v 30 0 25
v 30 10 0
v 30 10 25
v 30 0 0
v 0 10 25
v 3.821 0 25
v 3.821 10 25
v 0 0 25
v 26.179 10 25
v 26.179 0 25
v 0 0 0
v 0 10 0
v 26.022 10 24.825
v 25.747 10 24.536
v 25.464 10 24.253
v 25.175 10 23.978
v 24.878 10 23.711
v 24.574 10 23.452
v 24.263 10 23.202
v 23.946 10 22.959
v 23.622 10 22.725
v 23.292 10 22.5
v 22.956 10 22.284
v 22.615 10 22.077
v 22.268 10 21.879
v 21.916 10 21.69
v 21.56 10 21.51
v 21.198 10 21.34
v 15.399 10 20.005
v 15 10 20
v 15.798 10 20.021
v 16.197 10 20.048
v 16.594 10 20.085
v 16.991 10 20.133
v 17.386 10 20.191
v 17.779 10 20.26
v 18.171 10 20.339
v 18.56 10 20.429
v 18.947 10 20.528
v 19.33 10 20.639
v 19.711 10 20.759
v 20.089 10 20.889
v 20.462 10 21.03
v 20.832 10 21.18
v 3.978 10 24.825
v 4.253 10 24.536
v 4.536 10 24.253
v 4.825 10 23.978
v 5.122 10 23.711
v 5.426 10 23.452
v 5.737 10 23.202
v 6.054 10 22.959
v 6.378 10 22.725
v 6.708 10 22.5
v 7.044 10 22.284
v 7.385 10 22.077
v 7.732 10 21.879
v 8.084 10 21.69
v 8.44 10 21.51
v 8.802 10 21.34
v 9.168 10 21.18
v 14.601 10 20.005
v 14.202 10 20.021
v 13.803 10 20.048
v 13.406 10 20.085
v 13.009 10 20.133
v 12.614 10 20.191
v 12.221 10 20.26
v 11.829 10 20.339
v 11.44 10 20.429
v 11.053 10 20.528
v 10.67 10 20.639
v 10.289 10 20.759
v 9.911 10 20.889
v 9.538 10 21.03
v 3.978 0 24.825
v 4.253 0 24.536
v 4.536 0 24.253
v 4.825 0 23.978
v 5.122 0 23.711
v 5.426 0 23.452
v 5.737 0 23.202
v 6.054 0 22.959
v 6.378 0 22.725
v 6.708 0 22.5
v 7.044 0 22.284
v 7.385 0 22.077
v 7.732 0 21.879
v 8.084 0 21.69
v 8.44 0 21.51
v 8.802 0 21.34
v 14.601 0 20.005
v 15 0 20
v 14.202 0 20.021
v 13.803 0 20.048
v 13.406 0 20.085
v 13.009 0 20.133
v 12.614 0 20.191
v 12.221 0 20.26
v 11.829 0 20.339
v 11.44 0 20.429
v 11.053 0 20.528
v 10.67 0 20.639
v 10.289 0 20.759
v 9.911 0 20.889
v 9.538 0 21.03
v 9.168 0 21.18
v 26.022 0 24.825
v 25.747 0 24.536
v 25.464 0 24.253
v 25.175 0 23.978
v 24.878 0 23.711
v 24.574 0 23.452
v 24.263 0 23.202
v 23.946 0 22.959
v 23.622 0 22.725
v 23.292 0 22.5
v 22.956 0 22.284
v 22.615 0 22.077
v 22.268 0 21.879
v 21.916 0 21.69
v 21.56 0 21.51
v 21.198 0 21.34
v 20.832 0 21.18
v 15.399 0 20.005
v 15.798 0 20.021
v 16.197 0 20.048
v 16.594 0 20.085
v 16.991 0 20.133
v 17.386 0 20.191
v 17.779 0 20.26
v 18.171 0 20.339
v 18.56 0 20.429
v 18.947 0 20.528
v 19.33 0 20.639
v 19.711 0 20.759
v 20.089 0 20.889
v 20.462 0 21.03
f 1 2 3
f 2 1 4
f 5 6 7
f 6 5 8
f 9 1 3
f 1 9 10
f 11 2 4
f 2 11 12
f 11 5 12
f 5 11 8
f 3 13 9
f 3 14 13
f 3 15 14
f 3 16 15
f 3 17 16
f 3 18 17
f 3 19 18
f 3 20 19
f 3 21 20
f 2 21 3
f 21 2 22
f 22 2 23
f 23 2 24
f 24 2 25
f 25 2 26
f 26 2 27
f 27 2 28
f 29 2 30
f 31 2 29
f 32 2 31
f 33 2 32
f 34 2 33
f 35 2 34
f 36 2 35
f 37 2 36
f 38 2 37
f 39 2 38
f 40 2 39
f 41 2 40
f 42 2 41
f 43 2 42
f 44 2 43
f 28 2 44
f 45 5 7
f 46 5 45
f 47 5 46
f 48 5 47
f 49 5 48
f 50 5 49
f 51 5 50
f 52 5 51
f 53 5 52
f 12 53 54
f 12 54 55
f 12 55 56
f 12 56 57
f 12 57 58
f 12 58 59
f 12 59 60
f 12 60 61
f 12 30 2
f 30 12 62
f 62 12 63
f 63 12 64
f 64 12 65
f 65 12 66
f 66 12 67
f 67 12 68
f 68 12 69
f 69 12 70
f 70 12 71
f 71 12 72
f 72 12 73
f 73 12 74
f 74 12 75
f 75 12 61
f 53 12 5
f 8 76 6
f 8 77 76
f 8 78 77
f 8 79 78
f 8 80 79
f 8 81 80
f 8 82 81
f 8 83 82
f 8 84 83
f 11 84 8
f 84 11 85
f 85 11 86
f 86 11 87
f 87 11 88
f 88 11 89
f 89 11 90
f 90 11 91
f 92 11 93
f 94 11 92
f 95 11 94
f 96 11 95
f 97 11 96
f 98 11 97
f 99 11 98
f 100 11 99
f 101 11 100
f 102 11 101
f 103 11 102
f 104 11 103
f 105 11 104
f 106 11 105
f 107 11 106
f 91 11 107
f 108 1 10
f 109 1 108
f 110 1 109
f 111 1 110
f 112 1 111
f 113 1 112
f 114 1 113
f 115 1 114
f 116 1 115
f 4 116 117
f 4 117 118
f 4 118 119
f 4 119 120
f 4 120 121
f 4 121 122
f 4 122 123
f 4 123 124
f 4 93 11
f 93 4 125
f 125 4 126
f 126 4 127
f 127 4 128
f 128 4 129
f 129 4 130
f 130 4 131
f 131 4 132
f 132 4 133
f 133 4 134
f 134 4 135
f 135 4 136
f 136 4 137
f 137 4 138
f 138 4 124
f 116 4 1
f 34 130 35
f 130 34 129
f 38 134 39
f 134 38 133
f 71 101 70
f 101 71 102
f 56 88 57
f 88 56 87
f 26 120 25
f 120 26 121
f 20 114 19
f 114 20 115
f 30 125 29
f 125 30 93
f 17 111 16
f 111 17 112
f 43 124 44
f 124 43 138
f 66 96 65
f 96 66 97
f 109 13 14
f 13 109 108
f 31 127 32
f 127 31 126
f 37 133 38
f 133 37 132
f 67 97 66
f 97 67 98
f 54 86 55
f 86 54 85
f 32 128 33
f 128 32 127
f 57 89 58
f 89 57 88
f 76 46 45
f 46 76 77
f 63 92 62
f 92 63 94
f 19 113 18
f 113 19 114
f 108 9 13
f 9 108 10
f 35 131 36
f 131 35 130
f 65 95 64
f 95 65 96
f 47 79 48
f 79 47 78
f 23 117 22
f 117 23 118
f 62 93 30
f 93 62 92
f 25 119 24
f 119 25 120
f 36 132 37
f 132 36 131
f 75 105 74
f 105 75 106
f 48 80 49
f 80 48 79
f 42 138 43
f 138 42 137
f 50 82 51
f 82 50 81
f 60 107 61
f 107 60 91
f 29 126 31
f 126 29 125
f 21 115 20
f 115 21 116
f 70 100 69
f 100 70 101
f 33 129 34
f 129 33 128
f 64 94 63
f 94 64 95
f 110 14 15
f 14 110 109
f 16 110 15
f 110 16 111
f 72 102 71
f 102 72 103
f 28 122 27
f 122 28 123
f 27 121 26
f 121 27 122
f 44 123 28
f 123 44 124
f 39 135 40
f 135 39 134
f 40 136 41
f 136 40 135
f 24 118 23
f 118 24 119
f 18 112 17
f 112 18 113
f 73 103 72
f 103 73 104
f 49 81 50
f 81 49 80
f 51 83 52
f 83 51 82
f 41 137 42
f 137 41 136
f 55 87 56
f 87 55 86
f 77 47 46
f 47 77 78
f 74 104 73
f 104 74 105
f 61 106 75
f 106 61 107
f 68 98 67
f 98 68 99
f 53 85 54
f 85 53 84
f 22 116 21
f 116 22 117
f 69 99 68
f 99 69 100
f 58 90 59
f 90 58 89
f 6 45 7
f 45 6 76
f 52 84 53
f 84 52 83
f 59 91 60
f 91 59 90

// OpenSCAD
$fa=1;
$fs=0.4;
difference()
{
cube ([30,10,25],false);
{
translate ([15,11,35])
  rotate ([90,90,0])
   cylinder (12,15,15,false);
}
}
